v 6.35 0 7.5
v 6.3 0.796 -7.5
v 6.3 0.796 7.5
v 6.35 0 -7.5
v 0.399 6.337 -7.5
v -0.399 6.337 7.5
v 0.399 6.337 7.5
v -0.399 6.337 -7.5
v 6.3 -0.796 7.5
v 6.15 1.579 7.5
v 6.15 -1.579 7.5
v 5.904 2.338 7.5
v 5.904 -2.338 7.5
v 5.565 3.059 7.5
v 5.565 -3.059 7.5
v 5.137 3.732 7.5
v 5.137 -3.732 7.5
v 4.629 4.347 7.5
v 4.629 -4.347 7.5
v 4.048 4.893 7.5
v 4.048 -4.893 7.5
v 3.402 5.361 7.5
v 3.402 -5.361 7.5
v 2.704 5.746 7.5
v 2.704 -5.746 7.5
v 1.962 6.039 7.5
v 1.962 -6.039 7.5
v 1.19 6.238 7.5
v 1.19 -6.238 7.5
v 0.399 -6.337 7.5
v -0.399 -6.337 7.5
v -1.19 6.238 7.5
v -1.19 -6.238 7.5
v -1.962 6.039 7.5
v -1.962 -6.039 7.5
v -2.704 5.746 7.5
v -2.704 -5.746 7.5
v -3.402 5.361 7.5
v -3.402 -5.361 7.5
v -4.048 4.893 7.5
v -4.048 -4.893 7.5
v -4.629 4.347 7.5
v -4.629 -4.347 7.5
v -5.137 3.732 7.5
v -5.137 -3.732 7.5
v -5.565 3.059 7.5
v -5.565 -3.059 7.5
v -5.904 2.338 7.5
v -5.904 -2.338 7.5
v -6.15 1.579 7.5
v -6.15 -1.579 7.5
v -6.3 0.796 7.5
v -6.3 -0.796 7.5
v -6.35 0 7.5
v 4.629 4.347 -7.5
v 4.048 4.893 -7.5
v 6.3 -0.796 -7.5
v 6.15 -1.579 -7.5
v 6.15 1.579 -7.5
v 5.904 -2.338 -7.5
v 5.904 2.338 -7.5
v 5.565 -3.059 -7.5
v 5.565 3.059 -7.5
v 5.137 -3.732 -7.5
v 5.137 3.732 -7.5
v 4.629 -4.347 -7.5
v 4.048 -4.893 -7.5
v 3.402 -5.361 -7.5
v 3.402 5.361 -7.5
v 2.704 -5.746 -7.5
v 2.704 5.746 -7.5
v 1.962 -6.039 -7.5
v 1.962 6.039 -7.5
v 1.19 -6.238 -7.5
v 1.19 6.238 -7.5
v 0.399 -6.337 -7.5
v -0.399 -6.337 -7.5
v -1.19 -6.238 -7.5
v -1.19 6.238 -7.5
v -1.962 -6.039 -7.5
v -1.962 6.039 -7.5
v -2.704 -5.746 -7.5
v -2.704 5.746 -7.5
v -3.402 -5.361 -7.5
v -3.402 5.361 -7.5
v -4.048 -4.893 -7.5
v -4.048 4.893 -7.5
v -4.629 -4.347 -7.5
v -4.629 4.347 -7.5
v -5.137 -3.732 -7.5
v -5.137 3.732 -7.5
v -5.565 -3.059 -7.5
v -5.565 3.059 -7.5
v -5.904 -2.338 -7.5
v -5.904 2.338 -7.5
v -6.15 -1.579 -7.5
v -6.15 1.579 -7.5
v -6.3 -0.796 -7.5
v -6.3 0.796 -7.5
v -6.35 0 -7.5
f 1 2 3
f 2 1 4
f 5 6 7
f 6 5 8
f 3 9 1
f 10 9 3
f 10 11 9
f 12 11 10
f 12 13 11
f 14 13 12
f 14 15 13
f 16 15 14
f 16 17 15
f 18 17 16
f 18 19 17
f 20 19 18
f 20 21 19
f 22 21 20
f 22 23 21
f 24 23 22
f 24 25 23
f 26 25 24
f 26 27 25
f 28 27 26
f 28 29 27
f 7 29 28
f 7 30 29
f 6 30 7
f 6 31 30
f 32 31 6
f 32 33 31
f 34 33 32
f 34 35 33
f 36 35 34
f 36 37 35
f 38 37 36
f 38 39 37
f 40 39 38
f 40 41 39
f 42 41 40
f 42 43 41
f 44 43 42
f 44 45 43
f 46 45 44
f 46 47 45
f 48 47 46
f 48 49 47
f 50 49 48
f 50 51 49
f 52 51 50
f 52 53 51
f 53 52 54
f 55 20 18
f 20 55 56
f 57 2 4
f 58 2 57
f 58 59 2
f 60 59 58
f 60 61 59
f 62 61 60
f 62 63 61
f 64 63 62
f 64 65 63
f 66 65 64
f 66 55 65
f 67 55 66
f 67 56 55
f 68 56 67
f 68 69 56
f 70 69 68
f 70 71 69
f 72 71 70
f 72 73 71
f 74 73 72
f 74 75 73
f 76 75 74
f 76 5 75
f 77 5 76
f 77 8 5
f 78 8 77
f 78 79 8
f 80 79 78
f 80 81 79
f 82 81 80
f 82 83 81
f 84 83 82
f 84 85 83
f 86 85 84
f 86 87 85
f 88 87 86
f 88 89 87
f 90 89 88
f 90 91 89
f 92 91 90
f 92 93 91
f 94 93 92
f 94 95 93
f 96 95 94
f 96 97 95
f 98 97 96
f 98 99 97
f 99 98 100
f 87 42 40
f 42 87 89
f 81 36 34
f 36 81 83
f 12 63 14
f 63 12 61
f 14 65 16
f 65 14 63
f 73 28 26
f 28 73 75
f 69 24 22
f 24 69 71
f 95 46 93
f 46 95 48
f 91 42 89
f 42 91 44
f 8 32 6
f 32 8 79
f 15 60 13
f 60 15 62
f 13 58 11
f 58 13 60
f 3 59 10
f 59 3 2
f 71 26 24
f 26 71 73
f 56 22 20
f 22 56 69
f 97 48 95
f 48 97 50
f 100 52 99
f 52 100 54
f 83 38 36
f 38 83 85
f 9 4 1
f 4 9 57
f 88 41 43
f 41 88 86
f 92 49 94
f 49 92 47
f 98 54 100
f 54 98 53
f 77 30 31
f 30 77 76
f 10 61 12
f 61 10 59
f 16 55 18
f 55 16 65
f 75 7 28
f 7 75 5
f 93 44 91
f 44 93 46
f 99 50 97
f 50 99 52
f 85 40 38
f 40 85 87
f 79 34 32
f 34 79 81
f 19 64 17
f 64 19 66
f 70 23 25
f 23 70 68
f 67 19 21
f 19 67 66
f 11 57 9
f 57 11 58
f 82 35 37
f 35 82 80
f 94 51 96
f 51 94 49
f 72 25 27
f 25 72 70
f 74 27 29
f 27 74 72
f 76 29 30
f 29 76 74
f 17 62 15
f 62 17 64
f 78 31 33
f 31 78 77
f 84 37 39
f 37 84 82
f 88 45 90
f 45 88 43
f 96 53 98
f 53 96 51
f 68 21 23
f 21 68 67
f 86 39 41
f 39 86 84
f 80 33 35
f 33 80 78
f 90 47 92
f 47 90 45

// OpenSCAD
$fn = 50;


difference() {
	union() {
		translate(v = [0, 0, -7.5000000000]) {
			cylinder(h = 15, r = 6.3500000000);
		}
	}
	union() {
		translate(v = [0, 0, -100.0000000000]) {
			cylinder(h = 200, r = 0);
		}
	}
}
